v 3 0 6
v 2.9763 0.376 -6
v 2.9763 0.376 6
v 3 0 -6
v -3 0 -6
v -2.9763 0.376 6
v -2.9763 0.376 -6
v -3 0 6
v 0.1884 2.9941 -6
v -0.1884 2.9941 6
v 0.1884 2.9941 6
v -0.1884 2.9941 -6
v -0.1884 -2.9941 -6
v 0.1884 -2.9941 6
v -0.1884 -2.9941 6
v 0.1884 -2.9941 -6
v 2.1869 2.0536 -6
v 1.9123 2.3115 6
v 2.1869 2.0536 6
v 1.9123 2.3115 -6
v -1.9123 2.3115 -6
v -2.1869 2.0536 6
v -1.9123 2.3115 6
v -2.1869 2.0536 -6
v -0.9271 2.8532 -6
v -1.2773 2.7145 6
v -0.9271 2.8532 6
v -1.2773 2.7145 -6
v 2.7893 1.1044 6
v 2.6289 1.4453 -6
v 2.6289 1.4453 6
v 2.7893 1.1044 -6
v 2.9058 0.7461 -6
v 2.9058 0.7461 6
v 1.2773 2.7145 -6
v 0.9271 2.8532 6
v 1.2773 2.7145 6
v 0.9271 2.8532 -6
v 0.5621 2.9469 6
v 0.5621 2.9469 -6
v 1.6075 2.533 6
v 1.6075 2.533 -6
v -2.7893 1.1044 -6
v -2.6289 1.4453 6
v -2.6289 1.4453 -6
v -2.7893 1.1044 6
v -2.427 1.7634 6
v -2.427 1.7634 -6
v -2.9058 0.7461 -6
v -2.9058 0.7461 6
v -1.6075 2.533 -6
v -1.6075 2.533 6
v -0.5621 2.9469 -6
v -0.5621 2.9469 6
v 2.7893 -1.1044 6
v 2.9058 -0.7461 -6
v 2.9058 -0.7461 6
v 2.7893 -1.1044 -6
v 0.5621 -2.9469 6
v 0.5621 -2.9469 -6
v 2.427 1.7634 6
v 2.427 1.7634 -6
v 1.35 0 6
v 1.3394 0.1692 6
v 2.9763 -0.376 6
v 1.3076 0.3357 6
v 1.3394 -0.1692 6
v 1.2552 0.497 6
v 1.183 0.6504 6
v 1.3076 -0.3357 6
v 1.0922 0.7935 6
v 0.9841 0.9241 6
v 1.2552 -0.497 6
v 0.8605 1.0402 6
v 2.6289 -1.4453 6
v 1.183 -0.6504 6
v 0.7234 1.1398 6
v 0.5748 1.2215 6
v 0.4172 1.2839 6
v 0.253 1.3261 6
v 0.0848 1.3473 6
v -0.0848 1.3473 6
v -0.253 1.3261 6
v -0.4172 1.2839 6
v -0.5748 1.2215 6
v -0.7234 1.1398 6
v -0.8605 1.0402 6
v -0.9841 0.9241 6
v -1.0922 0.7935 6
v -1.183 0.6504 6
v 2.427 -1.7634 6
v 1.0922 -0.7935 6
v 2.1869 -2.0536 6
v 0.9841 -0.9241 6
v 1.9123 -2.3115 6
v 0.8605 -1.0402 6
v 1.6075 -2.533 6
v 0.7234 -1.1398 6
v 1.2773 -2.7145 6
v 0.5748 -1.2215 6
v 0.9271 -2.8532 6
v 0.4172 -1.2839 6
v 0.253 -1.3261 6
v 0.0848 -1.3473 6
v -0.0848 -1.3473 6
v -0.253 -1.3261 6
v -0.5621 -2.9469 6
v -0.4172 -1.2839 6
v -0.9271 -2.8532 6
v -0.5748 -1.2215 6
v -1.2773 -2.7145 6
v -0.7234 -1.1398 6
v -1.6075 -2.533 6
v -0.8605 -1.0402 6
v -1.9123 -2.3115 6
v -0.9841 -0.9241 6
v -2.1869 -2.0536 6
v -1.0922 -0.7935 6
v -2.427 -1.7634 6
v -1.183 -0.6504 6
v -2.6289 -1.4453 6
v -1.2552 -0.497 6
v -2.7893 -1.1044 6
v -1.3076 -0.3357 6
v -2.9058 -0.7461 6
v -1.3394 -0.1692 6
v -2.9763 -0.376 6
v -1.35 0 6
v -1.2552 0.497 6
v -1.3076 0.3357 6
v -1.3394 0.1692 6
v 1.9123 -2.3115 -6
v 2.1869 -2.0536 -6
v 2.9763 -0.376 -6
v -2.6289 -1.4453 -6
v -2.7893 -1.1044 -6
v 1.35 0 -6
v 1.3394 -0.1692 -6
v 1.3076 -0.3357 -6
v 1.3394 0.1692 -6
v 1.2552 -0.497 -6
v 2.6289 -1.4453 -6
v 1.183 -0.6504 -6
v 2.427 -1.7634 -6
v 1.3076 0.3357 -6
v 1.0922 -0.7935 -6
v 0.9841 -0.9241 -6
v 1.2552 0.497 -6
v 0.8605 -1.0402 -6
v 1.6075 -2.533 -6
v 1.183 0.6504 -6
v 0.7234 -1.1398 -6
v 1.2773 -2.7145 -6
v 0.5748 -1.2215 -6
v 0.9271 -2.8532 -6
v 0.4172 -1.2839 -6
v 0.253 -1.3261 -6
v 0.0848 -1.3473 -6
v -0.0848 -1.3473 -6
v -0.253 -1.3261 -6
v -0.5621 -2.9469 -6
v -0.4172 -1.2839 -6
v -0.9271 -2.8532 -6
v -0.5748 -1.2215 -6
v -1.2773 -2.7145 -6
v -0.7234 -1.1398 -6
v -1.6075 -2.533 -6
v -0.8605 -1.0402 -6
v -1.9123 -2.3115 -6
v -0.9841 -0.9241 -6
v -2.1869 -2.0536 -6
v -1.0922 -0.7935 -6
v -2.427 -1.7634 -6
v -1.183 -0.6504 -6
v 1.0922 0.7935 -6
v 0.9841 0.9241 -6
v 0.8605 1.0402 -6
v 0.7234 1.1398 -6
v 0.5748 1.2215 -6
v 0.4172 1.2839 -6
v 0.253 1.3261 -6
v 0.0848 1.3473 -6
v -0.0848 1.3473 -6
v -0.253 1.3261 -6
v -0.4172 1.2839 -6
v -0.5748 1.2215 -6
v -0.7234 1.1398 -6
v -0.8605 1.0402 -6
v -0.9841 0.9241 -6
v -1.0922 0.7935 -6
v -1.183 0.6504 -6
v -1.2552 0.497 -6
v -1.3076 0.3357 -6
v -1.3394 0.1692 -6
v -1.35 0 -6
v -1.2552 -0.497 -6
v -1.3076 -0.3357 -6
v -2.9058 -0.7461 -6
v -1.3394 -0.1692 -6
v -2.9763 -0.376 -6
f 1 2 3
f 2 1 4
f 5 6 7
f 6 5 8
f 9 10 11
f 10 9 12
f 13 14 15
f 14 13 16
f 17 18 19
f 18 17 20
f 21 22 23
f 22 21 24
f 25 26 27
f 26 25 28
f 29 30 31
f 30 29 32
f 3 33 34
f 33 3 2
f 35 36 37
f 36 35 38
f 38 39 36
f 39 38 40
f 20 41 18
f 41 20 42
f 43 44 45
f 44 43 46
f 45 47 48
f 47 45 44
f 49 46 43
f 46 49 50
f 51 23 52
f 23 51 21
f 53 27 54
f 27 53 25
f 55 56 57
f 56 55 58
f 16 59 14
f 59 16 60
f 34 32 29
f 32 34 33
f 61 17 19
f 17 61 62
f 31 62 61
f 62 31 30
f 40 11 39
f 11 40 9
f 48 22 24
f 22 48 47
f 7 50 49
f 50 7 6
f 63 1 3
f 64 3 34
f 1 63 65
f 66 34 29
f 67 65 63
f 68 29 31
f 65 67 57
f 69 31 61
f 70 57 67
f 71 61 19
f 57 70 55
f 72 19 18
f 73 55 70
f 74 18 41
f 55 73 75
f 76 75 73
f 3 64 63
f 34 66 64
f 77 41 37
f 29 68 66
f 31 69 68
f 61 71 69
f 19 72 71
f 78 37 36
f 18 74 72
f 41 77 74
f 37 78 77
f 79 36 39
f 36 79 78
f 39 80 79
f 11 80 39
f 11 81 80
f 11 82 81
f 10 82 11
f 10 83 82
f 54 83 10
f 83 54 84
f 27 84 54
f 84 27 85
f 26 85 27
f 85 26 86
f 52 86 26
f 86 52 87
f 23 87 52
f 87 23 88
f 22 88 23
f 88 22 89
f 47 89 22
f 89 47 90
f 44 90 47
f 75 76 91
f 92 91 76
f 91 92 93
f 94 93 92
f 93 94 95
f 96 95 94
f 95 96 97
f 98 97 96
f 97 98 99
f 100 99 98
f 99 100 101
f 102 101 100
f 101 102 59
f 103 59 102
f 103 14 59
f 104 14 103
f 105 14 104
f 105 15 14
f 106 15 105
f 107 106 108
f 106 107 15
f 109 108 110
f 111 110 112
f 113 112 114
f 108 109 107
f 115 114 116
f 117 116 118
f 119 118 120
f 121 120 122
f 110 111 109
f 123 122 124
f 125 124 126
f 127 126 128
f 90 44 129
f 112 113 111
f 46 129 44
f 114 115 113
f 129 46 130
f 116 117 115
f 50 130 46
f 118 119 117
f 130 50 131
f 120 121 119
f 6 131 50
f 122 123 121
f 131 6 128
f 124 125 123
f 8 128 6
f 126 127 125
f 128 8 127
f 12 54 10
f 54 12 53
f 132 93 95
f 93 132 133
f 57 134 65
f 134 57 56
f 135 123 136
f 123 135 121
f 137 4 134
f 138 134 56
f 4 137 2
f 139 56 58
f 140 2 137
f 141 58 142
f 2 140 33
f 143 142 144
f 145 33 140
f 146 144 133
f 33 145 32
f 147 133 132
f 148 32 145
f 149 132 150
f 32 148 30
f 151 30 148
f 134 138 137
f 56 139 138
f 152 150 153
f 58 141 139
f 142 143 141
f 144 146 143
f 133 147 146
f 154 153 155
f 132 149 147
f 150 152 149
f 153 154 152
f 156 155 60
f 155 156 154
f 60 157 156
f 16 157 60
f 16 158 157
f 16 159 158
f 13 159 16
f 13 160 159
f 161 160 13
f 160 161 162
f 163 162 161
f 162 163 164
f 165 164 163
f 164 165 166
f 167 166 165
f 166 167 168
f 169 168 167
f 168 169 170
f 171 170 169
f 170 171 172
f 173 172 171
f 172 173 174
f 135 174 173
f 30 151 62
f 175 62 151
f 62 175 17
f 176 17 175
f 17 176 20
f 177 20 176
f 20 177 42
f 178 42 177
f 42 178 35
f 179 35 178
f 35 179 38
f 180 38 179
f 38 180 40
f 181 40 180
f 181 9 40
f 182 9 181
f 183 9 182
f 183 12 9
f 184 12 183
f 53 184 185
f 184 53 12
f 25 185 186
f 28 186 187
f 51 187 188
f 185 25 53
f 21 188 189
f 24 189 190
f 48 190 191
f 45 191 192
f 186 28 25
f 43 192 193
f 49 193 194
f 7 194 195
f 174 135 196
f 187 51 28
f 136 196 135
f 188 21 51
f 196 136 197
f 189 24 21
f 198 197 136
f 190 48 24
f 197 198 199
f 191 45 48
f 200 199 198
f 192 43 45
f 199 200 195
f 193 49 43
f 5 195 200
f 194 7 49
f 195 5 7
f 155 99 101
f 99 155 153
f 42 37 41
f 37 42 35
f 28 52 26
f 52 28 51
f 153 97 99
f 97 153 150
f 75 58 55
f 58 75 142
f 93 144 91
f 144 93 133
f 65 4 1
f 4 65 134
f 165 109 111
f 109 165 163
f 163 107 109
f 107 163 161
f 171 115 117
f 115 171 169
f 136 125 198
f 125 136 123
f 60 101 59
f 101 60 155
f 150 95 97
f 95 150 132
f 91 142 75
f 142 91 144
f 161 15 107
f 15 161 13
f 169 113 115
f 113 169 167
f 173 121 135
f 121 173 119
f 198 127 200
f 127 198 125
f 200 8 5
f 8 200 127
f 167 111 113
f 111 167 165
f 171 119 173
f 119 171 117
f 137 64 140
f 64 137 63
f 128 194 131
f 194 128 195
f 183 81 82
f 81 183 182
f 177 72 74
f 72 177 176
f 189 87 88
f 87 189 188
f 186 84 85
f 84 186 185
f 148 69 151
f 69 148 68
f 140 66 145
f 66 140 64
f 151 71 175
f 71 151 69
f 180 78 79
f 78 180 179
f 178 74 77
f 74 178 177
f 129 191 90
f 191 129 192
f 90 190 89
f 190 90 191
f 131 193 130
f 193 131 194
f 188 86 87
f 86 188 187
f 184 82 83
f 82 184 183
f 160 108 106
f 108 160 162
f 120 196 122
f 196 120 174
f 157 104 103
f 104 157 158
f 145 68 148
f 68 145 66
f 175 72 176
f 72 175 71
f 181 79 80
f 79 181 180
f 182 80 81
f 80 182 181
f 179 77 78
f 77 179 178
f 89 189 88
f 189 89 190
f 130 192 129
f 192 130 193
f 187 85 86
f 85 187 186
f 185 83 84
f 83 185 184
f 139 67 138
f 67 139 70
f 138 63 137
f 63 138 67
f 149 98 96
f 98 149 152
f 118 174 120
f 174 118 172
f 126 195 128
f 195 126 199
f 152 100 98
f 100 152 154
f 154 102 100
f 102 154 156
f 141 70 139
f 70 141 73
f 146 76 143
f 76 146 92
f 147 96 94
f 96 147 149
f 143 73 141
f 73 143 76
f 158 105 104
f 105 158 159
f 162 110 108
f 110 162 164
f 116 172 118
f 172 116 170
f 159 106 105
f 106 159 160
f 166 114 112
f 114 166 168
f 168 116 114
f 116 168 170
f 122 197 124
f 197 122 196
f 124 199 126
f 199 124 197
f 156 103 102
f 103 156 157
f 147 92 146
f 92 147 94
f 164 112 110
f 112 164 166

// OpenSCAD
$fn = 50;


difference() {
	union() {
		translate(v = [0, 0, -6.0000000000]) {
			cylinder(h = 12, r = 3.0000000000);
		}
	}
	union() {
		translate(v = [0, 0, -100.0000000000]) {
			cylinder(h = 200, r = 1.3500000000);
		}
	}
}
